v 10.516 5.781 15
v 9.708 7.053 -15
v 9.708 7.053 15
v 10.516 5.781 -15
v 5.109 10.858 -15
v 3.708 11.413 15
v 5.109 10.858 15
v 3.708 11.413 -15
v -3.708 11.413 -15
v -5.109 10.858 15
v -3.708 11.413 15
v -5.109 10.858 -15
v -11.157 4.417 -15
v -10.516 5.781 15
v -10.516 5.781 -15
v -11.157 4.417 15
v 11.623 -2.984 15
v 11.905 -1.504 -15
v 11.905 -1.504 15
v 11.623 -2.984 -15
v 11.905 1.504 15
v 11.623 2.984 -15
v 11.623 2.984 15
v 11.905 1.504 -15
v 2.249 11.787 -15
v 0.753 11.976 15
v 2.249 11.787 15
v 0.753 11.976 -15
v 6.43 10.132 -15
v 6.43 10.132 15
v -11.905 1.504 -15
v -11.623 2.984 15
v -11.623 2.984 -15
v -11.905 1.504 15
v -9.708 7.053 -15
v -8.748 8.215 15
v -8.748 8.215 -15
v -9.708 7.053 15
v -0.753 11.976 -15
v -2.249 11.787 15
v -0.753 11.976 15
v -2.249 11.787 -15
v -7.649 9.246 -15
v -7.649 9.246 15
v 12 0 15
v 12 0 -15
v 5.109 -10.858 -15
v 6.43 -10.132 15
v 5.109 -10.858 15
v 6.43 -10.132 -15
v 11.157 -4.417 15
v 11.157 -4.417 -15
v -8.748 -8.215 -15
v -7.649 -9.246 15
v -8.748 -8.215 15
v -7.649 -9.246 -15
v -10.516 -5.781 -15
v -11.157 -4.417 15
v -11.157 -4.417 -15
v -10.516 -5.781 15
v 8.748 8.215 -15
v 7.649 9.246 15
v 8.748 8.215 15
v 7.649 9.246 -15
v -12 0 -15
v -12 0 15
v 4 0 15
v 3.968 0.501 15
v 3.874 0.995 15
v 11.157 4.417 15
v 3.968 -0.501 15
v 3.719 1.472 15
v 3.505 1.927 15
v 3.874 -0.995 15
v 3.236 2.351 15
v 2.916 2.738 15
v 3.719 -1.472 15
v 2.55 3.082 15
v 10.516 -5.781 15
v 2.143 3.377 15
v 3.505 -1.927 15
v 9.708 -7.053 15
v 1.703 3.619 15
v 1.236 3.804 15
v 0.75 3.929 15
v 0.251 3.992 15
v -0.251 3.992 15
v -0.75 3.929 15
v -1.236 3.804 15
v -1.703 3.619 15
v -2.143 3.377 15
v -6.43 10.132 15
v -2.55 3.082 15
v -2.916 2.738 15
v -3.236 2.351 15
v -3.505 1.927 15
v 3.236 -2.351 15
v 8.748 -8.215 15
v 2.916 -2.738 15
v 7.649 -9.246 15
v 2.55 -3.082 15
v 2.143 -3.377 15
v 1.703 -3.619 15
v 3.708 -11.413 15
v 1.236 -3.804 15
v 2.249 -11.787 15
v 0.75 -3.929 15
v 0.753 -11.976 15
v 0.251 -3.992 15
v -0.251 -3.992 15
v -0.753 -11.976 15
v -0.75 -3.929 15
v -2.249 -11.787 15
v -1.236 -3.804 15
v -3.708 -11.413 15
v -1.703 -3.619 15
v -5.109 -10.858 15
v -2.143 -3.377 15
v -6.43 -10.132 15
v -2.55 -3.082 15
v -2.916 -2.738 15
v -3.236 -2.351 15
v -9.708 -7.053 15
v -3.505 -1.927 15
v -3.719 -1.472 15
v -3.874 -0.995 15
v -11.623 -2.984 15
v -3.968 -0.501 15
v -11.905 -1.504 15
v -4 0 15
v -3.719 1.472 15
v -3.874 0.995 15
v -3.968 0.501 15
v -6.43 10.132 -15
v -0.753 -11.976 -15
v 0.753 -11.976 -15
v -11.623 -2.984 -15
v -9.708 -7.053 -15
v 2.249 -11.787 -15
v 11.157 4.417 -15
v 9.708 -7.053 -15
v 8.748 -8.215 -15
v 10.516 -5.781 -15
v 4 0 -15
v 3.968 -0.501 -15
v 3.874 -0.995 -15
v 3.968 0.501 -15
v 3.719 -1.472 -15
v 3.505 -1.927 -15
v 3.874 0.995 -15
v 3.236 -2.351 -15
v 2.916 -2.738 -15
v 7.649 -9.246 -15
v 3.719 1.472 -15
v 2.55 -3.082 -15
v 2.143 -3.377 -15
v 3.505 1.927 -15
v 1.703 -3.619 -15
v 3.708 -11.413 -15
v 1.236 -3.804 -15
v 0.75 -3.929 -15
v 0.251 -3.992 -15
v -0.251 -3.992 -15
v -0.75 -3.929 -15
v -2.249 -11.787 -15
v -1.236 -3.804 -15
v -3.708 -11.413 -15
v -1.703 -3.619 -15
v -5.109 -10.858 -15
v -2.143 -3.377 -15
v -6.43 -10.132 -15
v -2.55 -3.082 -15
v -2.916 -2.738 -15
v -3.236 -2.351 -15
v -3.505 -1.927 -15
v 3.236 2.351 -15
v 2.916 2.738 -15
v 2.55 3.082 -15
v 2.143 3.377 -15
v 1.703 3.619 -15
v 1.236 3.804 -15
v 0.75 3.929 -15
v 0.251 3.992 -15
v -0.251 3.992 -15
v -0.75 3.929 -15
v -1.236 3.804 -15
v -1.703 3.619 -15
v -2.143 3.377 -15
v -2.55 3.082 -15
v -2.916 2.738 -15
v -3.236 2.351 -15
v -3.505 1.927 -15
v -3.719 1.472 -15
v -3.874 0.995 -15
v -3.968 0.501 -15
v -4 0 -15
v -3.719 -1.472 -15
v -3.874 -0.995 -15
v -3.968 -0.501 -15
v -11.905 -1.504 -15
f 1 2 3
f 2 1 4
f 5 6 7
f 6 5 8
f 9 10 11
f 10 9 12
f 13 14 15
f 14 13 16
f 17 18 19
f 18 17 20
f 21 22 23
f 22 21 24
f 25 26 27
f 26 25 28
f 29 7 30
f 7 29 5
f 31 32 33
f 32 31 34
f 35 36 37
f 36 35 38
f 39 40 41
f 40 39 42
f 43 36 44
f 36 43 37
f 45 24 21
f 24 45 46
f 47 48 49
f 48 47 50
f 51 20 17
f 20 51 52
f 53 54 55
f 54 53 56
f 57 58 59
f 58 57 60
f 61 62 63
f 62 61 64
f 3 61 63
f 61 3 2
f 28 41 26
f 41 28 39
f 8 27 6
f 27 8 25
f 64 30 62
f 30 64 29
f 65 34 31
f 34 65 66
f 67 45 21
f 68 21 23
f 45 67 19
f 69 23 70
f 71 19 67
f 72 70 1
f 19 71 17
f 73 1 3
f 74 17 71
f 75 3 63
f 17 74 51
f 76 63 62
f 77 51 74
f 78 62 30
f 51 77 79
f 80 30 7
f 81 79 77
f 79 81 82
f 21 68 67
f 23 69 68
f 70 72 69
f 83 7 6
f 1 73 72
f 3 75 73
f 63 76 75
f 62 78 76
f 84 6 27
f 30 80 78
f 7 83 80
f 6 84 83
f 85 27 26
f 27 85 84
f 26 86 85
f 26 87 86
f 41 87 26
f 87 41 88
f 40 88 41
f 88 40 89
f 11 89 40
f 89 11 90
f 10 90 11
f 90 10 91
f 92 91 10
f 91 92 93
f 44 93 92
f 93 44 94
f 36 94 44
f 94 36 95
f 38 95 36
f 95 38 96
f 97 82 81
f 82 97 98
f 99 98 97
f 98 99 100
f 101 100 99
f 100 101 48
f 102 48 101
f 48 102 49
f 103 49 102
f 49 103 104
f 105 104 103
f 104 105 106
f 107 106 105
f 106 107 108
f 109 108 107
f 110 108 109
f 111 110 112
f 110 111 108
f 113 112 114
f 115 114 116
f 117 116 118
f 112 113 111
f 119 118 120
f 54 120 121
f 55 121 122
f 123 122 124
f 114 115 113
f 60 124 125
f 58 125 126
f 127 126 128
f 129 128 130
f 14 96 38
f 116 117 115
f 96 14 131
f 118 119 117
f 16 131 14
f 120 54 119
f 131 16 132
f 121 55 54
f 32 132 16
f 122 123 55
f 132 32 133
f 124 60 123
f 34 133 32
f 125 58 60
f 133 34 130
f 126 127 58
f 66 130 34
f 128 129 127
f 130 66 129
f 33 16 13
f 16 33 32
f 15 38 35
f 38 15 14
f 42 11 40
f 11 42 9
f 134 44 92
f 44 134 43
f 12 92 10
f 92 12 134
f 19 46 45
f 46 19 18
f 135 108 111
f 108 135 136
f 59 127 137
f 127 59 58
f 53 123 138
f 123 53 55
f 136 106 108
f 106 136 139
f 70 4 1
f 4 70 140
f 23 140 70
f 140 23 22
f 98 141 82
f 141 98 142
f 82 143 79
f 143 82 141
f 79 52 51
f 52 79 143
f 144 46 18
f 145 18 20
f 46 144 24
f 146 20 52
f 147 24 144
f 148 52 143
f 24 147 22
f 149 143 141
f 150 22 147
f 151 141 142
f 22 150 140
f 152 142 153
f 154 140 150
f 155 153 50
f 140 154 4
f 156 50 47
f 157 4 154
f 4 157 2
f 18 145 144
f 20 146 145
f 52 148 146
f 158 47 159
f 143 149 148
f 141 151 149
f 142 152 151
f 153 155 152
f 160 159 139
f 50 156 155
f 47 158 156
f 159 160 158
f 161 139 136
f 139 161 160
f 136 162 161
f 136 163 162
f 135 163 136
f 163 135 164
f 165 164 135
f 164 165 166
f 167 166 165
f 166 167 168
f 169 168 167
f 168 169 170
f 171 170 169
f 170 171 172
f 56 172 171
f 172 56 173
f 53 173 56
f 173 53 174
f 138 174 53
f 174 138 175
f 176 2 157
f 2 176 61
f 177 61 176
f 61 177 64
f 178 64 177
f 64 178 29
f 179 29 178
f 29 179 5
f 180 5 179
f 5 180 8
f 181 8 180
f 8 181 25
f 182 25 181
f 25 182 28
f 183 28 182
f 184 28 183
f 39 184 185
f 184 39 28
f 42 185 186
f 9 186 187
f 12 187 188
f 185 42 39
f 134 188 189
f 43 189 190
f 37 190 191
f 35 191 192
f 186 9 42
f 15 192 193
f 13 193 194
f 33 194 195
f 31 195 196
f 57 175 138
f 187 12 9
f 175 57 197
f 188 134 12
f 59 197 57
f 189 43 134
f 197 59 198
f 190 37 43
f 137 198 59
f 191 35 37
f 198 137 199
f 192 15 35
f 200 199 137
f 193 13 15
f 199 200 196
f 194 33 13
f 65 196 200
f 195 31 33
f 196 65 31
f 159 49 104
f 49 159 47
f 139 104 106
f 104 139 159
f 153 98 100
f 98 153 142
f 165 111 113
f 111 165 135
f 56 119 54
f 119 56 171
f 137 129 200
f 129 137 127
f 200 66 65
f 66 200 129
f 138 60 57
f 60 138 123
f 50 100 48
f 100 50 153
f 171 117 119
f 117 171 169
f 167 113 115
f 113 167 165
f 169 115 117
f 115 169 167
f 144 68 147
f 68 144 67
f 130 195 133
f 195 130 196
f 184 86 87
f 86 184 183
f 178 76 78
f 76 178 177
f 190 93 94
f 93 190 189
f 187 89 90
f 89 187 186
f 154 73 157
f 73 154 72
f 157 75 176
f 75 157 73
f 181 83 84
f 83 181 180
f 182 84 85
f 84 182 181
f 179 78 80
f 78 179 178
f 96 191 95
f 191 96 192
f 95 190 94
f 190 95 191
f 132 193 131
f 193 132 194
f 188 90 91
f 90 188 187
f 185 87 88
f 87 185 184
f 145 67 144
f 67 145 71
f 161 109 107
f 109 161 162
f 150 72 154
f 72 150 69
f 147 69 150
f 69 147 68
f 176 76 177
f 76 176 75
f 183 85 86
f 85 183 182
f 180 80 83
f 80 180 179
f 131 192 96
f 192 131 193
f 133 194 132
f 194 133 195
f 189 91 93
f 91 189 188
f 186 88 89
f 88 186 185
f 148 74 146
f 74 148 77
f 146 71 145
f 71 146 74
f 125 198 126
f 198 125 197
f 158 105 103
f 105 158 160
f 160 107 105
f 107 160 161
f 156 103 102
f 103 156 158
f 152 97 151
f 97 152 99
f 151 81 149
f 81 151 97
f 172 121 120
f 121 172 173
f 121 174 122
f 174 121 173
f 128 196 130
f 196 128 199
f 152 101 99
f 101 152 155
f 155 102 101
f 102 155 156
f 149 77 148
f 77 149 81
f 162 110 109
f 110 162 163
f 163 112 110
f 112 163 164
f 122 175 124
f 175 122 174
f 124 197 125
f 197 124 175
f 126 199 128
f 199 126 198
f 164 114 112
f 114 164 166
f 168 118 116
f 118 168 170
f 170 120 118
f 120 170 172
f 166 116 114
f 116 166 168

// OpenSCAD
$fn = 50;


difference() {
	union() {
		translate(v = [0, 0, -15.0000000000]) {
			cylinder(h = 30, r = 12.0000000000);
		}
	}
	union() {
		translate(v = [0, 0, -100.0000000000]) {
			cylinder(h = 200, r = 4);
		}
	}
}
